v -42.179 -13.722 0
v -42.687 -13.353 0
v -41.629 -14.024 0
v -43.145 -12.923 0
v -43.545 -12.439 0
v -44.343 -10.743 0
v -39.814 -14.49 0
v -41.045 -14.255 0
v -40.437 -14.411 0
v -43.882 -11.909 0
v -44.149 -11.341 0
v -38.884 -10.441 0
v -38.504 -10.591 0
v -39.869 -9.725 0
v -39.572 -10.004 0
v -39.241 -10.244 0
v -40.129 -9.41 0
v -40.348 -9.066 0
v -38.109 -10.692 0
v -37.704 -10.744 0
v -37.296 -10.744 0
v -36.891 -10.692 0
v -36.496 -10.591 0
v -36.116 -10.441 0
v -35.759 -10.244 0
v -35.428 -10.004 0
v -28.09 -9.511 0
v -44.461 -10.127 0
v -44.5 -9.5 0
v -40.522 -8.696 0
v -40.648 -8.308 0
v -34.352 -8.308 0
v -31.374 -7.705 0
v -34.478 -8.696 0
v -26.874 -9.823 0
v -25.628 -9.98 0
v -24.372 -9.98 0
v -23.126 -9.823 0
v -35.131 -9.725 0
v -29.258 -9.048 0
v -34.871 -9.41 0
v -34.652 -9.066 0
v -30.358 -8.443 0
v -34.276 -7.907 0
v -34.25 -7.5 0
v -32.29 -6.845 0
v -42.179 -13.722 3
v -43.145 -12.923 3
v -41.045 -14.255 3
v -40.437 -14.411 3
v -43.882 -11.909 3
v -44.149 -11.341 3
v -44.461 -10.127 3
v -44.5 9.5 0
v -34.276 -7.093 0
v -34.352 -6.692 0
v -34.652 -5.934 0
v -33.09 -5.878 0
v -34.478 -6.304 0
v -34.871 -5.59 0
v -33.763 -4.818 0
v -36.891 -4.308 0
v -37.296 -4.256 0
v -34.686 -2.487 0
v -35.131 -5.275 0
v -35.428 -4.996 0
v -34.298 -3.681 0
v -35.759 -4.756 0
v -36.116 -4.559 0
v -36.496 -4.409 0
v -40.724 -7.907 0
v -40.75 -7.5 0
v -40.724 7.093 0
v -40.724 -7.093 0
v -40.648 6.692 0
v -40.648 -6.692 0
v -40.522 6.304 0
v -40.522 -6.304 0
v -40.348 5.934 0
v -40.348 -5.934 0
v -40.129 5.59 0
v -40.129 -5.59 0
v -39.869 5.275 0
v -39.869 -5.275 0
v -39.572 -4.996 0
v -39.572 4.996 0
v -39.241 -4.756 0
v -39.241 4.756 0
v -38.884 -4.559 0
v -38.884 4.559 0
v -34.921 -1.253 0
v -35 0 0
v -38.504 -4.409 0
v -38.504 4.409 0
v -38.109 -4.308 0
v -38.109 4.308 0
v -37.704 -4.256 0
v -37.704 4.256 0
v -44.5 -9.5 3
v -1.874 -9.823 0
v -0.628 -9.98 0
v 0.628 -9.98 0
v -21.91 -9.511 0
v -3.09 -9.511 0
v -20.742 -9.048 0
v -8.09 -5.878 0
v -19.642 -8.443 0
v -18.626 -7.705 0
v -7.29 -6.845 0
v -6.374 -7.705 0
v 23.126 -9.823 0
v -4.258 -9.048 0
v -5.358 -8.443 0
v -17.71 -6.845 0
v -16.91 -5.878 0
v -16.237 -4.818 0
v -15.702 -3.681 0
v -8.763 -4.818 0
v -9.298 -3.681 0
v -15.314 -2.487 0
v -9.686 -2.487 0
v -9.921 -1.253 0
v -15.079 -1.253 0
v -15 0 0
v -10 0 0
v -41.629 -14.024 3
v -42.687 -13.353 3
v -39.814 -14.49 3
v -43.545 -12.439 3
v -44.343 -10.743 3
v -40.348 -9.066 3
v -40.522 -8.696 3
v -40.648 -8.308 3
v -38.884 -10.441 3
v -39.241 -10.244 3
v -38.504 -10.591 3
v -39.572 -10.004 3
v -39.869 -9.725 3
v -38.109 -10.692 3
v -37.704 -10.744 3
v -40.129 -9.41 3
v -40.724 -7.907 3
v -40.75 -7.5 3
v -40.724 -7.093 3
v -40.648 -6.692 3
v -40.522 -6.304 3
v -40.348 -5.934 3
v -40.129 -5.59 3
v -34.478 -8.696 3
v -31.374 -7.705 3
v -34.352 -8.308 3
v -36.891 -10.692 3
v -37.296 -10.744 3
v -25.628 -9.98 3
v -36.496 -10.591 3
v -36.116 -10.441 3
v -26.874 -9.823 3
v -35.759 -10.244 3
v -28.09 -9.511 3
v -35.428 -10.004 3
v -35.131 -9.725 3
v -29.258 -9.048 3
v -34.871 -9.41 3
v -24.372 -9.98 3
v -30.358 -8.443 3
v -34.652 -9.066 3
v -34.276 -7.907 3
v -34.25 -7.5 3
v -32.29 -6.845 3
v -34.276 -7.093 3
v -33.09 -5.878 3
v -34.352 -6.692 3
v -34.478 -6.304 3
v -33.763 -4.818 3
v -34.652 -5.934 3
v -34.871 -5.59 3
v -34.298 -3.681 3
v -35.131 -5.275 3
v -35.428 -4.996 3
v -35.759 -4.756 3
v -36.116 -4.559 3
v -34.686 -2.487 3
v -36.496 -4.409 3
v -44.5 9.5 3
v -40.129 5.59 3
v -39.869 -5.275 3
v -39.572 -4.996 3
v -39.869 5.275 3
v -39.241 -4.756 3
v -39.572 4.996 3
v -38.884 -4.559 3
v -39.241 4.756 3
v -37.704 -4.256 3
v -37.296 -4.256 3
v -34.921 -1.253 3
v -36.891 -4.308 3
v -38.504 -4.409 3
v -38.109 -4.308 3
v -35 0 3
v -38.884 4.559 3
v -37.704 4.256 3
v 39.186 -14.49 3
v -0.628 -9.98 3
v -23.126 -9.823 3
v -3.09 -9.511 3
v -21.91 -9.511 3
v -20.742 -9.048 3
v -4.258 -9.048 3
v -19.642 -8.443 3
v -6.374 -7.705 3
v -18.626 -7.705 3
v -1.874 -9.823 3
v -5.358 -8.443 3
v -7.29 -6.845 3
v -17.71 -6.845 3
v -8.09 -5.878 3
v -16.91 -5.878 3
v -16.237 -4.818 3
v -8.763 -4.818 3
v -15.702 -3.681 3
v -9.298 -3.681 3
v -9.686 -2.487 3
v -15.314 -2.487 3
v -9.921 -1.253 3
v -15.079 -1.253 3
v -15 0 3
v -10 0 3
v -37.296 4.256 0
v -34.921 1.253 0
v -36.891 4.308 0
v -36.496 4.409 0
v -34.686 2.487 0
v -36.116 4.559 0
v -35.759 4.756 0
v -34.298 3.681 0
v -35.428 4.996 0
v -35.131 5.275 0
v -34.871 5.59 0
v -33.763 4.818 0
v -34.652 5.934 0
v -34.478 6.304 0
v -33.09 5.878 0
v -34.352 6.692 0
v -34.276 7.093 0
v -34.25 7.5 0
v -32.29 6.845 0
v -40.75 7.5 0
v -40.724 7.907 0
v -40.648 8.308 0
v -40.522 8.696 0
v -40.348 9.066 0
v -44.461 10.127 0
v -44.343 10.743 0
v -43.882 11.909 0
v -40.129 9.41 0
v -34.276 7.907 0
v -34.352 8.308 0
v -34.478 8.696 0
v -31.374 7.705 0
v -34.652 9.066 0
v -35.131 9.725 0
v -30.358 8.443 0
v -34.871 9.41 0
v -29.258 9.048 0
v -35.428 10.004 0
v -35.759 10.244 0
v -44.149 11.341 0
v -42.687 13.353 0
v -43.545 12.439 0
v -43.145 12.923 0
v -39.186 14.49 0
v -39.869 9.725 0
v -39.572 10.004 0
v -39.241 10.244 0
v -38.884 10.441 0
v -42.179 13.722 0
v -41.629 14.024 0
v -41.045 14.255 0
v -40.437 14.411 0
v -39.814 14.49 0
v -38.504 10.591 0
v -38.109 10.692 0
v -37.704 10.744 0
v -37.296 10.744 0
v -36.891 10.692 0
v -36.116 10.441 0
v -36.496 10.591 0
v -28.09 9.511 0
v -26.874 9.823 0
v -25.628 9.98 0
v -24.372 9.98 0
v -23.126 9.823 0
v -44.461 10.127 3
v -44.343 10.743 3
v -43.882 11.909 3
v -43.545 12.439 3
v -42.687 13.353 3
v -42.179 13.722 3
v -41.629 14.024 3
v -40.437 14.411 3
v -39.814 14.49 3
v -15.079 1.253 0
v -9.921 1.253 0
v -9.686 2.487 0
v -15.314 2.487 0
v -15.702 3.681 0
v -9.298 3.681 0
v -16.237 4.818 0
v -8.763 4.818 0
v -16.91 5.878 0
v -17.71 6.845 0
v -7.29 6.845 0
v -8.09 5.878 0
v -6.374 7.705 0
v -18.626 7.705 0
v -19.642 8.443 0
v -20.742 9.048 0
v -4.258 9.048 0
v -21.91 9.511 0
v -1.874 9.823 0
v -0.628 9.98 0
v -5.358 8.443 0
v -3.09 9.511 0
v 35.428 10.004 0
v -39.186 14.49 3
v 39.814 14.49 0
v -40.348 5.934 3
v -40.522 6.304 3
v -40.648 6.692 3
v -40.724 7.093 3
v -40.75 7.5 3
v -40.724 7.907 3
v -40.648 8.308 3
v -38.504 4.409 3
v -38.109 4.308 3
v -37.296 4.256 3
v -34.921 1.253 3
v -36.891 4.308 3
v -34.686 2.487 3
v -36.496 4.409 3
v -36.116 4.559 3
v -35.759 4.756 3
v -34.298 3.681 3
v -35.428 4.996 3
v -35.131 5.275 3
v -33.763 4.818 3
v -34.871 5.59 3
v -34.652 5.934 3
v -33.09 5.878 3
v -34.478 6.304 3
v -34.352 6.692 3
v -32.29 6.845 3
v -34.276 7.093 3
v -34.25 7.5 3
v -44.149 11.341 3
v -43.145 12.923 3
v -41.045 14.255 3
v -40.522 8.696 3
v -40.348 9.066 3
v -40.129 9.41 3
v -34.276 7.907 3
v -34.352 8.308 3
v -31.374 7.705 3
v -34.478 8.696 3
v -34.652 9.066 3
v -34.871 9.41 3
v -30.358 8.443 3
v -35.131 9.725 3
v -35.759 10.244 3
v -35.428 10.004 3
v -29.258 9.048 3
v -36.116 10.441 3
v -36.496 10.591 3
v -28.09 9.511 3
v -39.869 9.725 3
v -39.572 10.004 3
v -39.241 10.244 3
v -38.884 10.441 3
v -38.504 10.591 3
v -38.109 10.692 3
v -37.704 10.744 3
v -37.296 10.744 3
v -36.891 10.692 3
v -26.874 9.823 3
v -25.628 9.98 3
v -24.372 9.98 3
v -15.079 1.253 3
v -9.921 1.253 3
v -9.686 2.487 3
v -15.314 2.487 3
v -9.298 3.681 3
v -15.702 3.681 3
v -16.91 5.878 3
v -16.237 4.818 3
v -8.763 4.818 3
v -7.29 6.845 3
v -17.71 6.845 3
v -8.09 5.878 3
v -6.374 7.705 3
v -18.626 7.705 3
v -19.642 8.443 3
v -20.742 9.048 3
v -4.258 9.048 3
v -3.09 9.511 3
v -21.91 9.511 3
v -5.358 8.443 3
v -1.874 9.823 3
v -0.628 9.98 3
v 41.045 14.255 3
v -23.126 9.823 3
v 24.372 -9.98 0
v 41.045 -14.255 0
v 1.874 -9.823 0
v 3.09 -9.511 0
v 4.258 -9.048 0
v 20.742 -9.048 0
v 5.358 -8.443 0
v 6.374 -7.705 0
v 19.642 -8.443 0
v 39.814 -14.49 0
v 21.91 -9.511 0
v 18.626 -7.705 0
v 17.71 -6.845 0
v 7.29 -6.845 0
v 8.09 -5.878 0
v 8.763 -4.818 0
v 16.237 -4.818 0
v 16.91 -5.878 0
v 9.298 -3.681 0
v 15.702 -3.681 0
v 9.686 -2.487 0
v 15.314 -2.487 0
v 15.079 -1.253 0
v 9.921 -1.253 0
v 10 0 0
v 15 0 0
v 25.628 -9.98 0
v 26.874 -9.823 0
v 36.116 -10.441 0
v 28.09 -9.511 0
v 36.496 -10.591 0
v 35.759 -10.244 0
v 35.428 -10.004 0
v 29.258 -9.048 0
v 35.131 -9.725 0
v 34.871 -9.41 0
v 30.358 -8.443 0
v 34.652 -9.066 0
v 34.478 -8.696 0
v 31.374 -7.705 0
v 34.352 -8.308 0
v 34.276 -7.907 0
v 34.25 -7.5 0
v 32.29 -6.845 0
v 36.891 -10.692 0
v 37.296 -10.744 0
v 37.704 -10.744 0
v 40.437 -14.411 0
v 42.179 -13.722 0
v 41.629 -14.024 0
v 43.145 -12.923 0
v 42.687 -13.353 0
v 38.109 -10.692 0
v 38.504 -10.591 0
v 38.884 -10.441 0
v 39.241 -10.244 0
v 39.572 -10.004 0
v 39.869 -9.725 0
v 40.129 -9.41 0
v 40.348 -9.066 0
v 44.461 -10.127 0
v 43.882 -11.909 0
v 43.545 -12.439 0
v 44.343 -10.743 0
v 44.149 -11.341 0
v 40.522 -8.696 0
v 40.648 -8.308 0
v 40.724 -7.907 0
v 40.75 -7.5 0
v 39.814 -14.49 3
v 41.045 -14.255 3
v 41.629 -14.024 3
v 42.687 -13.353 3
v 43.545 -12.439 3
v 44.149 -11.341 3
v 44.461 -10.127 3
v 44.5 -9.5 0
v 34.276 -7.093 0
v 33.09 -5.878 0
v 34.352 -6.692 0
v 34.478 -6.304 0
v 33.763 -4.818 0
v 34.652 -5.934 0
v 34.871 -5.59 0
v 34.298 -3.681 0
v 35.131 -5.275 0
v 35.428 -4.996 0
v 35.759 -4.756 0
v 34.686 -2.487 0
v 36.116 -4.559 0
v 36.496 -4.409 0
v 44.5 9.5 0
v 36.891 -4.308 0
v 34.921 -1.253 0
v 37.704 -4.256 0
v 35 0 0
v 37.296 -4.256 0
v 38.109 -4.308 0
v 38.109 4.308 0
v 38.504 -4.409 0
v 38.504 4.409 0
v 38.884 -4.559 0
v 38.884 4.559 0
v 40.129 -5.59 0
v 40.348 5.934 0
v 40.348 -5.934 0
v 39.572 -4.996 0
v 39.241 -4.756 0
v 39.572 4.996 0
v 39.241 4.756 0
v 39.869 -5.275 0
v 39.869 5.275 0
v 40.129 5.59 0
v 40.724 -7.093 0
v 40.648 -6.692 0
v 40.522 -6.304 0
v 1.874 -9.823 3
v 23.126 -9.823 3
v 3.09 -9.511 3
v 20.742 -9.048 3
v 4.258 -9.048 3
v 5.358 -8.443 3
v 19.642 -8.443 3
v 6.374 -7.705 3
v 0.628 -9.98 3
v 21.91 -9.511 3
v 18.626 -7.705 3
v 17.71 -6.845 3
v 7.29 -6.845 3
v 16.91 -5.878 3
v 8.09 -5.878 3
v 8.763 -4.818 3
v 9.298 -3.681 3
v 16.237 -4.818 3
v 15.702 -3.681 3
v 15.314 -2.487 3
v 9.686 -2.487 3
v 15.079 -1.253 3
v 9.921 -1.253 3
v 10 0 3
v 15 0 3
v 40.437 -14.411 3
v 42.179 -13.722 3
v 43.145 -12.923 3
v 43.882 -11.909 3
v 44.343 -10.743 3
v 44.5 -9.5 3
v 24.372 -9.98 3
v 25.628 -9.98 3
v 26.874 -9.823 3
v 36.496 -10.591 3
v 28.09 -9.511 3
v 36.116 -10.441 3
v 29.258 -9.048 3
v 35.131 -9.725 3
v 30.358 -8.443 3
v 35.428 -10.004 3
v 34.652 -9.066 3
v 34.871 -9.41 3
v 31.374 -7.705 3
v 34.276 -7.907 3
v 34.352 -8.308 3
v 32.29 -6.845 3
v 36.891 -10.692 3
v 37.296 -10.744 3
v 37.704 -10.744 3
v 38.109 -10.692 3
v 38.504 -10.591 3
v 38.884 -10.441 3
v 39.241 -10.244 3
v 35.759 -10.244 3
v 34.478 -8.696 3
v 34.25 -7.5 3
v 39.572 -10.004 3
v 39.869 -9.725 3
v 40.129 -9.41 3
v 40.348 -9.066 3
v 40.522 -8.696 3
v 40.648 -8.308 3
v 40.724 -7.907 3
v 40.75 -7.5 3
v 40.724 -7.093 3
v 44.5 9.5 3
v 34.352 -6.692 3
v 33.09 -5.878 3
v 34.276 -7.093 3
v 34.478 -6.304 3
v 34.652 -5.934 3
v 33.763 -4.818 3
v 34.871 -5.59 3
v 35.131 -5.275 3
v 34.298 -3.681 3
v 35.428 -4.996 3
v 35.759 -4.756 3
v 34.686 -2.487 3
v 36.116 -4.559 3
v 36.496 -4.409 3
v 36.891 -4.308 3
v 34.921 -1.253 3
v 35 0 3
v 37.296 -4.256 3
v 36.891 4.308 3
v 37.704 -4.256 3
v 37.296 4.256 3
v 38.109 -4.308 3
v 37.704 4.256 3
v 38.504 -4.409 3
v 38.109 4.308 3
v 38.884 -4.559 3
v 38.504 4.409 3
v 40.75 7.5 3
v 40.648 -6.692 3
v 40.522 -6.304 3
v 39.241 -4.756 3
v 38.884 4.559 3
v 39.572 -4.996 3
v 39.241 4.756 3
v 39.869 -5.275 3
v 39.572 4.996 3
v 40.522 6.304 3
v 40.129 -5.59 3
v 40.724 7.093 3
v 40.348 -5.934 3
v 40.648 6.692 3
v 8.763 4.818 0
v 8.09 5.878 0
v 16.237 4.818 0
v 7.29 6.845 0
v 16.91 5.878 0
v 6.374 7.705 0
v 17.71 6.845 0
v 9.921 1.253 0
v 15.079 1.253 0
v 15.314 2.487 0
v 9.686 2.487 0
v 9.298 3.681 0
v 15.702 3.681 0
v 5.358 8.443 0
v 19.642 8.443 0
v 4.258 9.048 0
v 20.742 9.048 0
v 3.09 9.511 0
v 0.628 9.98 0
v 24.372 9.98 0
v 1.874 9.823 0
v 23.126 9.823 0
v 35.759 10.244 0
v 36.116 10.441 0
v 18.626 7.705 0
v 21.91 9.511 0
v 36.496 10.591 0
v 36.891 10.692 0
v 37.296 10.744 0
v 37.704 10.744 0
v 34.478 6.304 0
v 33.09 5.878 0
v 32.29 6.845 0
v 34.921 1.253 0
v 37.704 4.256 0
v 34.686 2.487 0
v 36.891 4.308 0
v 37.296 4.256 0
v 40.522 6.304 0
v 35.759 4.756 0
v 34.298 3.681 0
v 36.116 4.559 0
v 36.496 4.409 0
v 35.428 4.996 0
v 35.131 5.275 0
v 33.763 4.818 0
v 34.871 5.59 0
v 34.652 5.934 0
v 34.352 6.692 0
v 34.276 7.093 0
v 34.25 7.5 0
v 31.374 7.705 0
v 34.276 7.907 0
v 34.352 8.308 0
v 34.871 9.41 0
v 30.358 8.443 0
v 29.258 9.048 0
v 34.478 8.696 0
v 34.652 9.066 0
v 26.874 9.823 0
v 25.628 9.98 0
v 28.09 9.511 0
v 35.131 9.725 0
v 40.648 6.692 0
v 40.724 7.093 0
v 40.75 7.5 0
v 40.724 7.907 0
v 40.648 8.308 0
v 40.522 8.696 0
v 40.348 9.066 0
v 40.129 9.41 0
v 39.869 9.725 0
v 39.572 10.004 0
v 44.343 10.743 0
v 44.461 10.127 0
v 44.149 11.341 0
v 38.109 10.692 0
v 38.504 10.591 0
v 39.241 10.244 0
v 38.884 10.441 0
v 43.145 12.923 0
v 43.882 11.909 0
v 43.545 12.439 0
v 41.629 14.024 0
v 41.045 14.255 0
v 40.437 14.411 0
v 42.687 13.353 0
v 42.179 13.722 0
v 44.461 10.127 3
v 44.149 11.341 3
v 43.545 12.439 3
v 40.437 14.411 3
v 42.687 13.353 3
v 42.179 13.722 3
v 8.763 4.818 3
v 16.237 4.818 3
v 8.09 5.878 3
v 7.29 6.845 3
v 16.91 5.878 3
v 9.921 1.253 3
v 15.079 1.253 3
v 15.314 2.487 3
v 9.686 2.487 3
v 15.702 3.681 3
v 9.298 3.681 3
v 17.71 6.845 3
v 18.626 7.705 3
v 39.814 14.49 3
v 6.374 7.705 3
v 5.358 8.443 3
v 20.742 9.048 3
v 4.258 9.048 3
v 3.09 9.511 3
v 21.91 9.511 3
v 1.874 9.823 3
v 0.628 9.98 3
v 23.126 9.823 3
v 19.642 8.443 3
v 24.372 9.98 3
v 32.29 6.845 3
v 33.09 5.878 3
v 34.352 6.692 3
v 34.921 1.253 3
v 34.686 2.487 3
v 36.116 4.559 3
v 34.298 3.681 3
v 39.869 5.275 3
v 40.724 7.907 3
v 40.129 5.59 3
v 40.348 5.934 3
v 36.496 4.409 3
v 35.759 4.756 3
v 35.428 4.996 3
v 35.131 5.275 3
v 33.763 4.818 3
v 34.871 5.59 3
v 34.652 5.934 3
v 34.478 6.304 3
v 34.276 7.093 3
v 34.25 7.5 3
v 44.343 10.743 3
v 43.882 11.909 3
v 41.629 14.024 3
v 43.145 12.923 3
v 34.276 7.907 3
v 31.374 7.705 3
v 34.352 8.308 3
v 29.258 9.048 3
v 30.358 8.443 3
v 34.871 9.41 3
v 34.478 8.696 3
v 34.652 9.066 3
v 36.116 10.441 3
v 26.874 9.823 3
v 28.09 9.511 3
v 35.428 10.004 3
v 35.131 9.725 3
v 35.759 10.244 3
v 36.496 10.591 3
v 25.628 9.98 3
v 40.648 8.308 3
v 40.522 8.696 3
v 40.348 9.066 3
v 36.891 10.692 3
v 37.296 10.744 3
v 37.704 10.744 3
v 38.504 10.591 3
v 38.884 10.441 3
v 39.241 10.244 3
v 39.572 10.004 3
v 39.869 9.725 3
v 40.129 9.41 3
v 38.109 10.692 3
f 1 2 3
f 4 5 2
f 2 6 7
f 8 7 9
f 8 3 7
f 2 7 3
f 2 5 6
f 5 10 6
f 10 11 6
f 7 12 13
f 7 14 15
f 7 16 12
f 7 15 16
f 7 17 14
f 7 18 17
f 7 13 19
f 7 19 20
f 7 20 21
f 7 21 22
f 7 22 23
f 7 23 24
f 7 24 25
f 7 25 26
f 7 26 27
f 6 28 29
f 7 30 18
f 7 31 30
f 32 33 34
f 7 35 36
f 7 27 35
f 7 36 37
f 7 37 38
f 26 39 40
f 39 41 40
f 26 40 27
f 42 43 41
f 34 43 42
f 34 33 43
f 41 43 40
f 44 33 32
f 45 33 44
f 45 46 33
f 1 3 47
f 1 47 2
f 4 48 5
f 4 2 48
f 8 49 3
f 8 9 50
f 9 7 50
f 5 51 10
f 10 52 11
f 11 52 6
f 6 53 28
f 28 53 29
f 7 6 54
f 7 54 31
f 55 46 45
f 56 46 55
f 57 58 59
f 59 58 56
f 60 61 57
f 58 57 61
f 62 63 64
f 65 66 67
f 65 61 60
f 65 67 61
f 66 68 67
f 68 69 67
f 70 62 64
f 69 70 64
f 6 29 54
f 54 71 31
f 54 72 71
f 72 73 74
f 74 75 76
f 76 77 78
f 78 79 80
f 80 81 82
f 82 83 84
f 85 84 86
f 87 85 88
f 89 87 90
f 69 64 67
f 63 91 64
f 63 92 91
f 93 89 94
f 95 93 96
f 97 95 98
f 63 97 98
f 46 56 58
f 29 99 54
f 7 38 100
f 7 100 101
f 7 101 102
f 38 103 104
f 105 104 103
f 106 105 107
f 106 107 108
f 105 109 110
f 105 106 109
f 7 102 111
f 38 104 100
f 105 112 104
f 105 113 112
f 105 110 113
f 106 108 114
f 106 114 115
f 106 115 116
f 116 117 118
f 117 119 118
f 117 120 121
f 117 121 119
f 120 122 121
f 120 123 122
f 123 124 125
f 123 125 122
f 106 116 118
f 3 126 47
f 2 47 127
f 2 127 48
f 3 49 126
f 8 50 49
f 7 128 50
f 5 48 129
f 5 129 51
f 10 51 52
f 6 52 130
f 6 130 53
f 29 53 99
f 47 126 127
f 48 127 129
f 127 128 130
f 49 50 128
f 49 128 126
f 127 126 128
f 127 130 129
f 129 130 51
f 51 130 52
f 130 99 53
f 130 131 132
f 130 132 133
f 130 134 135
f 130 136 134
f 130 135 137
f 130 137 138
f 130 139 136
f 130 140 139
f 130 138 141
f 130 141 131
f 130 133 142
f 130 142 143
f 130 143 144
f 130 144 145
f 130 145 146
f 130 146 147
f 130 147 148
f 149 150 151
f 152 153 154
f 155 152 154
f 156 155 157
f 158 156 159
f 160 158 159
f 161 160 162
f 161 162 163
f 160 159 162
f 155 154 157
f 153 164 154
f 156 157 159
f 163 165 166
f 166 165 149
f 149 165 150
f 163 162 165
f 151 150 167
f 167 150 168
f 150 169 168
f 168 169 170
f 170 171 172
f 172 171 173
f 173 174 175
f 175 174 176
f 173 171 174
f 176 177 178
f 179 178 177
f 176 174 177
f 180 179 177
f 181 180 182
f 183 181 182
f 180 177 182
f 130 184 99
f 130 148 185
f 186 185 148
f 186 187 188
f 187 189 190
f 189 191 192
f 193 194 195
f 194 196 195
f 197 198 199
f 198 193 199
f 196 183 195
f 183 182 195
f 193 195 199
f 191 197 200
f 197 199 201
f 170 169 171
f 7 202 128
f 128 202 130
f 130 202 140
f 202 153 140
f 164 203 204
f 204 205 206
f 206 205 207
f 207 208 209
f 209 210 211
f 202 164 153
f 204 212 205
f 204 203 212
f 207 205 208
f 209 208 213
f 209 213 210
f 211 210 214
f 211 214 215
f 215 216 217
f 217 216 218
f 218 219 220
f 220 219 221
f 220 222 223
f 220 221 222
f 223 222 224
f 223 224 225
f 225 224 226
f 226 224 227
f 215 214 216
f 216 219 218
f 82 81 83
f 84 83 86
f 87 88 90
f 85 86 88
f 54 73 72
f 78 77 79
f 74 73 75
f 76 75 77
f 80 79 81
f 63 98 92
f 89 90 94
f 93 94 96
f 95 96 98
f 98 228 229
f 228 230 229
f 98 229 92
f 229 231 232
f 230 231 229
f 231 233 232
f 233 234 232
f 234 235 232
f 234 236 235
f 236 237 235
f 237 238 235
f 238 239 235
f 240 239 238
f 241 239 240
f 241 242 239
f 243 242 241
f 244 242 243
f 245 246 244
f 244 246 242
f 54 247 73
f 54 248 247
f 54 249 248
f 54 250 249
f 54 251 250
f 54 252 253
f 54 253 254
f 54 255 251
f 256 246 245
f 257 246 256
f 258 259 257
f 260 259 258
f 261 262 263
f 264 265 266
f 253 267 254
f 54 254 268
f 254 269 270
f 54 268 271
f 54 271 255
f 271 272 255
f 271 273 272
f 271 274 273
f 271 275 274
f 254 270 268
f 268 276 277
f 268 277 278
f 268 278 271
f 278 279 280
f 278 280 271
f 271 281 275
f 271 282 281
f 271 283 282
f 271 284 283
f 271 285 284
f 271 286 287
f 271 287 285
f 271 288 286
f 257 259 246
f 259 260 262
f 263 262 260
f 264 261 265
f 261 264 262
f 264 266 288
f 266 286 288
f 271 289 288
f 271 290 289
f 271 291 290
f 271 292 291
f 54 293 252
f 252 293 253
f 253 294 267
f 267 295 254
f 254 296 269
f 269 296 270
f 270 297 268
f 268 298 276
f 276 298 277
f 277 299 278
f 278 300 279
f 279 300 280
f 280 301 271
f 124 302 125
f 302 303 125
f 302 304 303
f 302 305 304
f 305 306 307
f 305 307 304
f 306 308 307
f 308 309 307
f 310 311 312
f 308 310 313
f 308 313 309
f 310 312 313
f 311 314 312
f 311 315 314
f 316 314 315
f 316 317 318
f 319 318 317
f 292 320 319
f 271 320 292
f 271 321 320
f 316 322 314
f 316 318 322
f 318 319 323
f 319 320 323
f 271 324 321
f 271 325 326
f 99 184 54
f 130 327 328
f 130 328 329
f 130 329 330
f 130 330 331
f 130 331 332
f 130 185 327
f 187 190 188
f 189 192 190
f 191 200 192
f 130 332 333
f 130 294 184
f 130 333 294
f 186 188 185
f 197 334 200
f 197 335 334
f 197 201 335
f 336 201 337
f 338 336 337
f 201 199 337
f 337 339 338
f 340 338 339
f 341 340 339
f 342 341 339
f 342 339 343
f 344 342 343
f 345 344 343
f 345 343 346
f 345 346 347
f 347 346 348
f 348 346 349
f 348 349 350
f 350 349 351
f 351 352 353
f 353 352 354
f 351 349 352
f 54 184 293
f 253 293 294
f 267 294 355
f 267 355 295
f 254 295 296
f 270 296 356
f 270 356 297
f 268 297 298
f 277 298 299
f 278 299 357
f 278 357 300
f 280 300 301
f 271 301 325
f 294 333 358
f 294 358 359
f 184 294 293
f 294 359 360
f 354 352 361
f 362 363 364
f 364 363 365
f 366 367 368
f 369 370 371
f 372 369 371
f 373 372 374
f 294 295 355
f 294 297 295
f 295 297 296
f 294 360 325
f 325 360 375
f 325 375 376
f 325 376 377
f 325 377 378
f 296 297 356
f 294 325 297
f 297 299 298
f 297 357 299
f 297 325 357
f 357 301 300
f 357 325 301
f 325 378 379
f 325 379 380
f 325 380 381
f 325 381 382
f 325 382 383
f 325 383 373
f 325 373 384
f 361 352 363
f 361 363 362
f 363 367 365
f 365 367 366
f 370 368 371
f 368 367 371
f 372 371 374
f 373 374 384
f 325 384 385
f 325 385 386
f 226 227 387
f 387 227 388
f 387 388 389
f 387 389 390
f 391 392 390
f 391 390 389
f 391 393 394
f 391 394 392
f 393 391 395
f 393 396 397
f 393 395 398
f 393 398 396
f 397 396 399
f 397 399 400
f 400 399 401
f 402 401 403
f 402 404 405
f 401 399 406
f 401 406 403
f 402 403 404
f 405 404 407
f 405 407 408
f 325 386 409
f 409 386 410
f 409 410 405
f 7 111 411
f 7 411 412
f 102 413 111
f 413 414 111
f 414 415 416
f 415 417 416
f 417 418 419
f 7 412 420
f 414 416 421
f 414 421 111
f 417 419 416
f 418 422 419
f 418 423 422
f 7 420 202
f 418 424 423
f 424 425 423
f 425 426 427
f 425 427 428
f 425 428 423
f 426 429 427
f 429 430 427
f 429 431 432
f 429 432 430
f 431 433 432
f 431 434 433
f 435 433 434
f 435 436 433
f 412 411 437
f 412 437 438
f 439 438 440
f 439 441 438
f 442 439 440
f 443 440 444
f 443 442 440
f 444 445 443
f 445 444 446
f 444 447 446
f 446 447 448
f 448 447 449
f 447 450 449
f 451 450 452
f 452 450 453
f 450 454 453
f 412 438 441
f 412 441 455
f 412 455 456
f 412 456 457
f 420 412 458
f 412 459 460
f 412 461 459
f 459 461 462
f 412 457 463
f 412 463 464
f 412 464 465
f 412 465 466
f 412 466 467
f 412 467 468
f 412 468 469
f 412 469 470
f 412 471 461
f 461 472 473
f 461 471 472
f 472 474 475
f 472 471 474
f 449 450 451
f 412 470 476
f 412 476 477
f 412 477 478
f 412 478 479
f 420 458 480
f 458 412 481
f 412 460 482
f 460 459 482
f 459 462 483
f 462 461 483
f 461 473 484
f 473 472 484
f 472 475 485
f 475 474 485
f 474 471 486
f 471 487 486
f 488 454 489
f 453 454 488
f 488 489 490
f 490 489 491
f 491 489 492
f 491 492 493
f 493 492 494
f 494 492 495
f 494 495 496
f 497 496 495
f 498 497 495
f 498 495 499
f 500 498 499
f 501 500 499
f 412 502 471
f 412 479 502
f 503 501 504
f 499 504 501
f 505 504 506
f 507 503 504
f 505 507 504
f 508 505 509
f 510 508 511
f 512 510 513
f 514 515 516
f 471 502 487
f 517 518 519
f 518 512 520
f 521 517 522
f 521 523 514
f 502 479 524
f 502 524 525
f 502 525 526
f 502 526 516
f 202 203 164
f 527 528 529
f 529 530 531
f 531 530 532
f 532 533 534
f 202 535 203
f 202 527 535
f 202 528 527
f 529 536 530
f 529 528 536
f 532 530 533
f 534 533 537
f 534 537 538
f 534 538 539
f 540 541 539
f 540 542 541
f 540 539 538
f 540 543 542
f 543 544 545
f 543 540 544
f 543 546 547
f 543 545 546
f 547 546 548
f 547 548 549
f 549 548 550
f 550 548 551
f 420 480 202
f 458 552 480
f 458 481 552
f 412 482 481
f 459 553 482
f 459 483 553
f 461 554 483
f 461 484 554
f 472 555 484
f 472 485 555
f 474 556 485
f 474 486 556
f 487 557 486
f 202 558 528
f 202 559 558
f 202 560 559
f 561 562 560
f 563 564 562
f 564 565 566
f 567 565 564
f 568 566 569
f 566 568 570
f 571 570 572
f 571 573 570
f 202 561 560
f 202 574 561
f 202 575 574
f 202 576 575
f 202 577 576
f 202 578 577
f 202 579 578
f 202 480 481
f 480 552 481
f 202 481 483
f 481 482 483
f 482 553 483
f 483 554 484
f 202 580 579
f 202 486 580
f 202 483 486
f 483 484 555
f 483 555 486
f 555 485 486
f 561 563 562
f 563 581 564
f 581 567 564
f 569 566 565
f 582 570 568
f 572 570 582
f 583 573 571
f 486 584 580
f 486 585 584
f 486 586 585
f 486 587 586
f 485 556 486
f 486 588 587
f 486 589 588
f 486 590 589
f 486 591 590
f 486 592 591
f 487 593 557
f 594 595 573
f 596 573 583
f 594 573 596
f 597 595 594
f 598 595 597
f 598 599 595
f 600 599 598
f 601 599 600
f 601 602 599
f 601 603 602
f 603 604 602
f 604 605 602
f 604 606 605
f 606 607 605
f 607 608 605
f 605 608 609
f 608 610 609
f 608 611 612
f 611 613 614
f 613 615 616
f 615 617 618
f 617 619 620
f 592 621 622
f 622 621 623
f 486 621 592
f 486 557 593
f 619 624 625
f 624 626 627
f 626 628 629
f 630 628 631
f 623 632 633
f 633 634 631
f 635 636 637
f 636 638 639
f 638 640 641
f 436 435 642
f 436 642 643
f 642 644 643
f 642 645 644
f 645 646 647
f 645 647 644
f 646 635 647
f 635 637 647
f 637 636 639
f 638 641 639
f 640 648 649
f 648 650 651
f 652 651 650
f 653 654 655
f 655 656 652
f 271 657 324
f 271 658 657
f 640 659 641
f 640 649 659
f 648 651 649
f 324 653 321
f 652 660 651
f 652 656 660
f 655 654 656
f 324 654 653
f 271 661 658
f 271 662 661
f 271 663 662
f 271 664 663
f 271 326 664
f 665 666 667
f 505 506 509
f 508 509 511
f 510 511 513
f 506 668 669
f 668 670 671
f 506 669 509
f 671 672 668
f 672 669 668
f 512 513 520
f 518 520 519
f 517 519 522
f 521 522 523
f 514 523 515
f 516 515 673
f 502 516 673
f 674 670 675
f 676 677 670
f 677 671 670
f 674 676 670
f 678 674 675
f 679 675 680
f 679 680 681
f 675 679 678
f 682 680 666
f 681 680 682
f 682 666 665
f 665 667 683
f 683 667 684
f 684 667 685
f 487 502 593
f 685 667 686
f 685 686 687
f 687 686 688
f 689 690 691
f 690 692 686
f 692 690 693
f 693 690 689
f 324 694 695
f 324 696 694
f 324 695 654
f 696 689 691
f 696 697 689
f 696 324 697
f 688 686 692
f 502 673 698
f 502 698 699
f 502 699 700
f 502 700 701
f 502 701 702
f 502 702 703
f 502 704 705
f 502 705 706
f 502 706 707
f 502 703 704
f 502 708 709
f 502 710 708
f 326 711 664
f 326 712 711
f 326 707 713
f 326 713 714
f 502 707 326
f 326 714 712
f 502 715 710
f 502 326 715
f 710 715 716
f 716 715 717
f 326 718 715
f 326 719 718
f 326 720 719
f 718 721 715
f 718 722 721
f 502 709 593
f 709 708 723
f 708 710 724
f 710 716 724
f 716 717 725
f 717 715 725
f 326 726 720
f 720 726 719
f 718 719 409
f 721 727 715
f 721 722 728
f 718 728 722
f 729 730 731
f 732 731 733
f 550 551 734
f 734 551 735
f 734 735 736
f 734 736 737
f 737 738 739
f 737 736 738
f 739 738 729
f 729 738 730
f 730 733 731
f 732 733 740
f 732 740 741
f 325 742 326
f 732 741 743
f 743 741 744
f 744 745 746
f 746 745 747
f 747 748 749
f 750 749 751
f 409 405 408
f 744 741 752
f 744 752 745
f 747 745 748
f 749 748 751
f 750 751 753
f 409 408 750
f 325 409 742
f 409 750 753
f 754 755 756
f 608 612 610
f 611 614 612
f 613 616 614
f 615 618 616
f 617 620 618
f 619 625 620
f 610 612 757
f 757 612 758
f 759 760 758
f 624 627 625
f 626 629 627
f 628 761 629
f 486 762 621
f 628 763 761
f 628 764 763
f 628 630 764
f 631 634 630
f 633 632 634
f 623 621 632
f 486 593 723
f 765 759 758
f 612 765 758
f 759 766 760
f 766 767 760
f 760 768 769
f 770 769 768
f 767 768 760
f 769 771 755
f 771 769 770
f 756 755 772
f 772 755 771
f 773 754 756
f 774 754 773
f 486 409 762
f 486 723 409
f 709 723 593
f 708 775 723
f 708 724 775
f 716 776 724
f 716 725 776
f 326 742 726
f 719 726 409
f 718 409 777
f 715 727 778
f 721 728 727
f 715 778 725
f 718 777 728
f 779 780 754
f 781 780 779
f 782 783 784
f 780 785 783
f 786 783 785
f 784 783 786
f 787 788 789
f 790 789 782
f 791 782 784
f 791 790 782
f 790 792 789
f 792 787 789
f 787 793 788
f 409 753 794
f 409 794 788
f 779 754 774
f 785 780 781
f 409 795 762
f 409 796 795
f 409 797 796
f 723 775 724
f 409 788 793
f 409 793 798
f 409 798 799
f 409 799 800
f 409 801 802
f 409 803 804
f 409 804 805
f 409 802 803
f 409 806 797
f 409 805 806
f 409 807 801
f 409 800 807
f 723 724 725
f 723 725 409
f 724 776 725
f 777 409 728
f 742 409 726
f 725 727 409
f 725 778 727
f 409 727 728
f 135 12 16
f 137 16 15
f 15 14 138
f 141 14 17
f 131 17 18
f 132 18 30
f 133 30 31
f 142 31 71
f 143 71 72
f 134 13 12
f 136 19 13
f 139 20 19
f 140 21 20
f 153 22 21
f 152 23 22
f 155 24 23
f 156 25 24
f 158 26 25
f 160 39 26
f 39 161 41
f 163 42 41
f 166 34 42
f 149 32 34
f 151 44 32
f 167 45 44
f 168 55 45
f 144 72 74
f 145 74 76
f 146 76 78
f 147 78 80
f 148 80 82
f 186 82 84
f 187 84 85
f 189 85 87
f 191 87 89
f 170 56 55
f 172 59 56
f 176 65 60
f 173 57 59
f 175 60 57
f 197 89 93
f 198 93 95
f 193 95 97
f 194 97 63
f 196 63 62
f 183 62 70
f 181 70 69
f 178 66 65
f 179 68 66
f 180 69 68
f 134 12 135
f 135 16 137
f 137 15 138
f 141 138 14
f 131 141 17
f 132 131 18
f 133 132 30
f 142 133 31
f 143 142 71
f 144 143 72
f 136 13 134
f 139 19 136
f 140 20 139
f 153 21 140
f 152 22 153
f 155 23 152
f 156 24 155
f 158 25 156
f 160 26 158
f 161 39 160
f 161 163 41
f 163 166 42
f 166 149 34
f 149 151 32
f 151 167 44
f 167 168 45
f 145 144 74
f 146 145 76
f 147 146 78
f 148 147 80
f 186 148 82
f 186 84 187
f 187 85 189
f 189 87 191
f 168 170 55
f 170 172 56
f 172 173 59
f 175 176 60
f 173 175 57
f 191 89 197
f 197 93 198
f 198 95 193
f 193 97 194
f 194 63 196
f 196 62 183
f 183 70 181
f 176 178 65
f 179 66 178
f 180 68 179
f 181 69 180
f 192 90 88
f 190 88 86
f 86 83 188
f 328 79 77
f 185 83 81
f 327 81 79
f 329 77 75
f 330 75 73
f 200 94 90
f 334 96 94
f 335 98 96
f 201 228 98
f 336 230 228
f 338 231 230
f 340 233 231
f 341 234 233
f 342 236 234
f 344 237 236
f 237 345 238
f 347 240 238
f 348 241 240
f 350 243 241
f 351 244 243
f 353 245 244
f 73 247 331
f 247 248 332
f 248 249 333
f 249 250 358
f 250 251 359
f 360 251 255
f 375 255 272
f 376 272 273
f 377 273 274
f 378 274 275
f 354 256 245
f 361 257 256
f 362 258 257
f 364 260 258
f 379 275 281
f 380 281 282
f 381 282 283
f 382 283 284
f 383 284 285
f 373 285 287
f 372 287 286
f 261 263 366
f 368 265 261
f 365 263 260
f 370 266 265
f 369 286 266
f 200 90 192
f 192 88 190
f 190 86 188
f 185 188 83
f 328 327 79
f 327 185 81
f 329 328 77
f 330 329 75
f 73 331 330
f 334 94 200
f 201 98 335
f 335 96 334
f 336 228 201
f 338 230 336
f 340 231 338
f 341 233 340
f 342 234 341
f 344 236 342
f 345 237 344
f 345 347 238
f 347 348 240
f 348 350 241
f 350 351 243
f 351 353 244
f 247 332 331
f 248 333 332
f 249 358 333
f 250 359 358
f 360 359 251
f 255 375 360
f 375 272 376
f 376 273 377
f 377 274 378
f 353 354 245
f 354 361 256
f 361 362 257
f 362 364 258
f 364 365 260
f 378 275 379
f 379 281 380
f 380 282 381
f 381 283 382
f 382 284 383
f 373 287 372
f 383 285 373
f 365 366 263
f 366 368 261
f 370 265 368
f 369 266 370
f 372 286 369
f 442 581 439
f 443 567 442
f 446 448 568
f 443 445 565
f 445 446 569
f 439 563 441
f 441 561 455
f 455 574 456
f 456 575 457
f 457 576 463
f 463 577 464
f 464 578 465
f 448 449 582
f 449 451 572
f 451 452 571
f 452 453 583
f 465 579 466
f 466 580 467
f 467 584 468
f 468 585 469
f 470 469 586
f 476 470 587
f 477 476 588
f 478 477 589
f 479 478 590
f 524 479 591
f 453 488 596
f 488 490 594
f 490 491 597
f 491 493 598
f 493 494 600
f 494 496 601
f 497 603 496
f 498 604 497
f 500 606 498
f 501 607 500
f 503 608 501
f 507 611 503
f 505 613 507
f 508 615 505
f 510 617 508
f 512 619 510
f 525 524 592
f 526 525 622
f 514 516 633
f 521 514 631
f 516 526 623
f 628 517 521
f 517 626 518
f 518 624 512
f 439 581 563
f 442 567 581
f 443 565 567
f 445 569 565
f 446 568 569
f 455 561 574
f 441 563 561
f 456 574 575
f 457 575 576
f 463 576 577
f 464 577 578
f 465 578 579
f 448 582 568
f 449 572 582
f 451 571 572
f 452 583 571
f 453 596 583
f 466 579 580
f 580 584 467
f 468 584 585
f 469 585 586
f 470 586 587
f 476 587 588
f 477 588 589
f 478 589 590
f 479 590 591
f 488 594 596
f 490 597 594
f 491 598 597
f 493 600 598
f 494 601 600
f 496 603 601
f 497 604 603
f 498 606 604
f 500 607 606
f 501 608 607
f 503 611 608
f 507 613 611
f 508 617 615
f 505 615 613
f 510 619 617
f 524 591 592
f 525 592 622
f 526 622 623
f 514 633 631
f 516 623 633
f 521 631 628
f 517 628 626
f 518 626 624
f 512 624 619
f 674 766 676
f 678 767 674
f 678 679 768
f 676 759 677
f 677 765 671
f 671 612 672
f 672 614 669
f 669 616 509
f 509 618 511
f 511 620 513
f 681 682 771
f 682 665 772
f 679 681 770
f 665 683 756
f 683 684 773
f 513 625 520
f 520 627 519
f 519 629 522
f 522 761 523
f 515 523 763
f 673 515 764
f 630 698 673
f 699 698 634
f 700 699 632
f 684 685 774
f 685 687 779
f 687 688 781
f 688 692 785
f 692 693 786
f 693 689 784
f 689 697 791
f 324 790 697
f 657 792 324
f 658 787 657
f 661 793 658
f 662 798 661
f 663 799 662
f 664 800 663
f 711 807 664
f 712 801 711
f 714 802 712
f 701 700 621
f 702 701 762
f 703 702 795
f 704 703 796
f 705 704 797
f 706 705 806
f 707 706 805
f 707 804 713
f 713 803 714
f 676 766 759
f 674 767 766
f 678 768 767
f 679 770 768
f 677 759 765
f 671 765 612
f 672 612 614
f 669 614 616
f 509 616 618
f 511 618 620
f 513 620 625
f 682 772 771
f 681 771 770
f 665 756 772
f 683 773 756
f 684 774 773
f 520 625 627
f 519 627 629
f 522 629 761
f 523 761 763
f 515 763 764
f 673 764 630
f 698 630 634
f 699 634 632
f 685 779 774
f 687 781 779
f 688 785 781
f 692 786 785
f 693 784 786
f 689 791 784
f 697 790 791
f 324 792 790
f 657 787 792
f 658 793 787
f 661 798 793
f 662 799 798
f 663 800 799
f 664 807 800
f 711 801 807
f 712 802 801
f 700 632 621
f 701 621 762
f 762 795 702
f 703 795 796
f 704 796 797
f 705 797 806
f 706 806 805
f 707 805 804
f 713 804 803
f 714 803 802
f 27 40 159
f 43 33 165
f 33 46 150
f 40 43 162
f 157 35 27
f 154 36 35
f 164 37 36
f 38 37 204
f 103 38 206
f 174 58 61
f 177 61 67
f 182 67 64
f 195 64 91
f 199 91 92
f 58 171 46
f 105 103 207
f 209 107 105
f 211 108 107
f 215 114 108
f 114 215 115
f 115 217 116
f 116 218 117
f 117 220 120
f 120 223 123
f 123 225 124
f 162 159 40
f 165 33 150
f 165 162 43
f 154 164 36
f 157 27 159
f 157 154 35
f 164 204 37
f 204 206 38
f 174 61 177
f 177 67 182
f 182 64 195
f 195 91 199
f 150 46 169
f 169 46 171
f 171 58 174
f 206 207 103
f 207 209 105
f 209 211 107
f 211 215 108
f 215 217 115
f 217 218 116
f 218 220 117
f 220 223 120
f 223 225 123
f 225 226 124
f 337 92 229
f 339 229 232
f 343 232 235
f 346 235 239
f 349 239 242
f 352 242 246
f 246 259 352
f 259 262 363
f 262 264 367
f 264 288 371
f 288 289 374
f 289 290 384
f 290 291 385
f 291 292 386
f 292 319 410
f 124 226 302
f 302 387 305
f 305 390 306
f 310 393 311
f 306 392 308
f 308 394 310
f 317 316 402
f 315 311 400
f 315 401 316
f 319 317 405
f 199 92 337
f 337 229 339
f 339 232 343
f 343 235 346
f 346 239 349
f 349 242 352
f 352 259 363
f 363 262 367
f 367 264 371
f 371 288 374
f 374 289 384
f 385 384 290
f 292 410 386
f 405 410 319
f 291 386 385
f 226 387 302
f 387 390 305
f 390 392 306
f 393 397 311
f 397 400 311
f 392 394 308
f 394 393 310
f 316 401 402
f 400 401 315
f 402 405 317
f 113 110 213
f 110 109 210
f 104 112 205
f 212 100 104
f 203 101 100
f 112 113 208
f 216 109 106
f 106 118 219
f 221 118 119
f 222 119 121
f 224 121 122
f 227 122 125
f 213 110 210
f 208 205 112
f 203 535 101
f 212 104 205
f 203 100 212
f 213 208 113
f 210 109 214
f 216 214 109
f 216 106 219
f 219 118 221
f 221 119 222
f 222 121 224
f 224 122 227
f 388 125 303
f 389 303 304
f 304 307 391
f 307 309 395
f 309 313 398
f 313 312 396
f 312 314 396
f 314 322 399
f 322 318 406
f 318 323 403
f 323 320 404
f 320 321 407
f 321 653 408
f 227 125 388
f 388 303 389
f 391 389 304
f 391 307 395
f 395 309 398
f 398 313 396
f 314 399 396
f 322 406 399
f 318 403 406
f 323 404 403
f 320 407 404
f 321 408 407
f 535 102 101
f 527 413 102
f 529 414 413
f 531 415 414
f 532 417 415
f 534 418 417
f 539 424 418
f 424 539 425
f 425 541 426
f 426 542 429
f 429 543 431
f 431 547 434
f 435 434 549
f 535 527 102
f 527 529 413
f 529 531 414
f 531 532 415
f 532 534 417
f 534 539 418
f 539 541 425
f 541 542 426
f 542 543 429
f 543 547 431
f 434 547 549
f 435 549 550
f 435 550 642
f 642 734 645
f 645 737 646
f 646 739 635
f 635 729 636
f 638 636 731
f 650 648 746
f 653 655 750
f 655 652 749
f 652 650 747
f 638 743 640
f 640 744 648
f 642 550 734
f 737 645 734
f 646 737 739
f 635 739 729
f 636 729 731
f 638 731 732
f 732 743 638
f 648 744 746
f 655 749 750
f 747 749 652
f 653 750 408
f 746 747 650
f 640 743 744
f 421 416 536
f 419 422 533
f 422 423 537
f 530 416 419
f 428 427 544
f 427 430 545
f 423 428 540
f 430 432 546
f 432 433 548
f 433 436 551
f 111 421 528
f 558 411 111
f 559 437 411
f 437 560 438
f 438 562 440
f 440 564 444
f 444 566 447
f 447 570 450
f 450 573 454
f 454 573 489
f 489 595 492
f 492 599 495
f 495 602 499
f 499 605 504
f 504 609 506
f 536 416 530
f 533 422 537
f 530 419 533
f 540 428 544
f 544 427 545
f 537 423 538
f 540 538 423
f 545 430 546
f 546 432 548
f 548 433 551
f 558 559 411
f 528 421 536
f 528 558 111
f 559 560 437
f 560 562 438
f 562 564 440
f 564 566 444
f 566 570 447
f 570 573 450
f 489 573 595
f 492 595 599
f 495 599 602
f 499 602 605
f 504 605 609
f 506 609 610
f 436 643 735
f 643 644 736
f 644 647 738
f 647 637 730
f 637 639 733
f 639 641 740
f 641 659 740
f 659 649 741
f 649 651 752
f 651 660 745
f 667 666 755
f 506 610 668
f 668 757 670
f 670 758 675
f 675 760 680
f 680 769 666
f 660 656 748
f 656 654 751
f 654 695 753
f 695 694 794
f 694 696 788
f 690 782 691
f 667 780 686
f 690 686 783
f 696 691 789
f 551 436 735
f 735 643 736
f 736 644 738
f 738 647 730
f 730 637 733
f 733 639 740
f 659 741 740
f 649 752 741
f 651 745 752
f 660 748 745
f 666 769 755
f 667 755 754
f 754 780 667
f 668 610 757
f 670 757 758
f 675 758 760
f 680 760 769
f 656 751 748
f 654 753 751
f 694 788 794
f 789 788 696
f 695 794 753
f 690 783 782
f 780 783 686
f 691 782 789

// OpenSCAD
$fn = 50;

difference() {
	union() {
		hull() {
			translate(v = [-39.5, 9.5, 0]) {
				cylinder(h = 3, r = 5);
			}
			translate(v = [39.5, 9.5, 0]) {
				cylinder(h = 3, r = 5);
			}
			translate(v = [-39.5, -9.5, 0]) {
				cylinder(h = 3, r = 5);
			}
			translate(v = [39.5, -9.5, 0]) {
				cylinder(h = 3, r = 5);
			}
		}
	}
	union() {
		translate(v = [-37.5, -7.5, -100.0]) {
			cylinder(h = 200, r = 3.25);
		}
		translate(v = [-37.5, 7.5, -100.0]) {
			cylinder(h = 200, r = 3.25);
		}
		translate(v = [37.5, -7.5, -100.0]) {
			cylinder(h = 200, r = 3.25);
		}
		translate(v = [37.5, 7.5, -100.0]) {
			cylinder(h = 200, r = 3.25);
		}
		translate(v = [-37.5, -7.5, -100.0]) {
			cylinder(h = 200, r = 1.8);
		}
		translate(v = [-37.5, 7.5, -100.0]) {
			cylinder(h = 200, r = 1.8);
		}
		translate(v = [37.5, -7.5, -100.0]) {
			cylinder(h = 200, r = 1.8);
		}
		translate(v = [37.5, 7.5, -100.0]) {
			cylinder(h = 200, r = 1.8);
		}
		translate(v = [-25.0, 0, 0.0]) {
			cylinder(h = 3, r = 10.0);
		}
		cylinder(h = 3, r = 10.0);
		translate(v = [25.0, 0, 0.0]) {
			cylinder(h = 3, r = 10.0);
		}
	}
}
